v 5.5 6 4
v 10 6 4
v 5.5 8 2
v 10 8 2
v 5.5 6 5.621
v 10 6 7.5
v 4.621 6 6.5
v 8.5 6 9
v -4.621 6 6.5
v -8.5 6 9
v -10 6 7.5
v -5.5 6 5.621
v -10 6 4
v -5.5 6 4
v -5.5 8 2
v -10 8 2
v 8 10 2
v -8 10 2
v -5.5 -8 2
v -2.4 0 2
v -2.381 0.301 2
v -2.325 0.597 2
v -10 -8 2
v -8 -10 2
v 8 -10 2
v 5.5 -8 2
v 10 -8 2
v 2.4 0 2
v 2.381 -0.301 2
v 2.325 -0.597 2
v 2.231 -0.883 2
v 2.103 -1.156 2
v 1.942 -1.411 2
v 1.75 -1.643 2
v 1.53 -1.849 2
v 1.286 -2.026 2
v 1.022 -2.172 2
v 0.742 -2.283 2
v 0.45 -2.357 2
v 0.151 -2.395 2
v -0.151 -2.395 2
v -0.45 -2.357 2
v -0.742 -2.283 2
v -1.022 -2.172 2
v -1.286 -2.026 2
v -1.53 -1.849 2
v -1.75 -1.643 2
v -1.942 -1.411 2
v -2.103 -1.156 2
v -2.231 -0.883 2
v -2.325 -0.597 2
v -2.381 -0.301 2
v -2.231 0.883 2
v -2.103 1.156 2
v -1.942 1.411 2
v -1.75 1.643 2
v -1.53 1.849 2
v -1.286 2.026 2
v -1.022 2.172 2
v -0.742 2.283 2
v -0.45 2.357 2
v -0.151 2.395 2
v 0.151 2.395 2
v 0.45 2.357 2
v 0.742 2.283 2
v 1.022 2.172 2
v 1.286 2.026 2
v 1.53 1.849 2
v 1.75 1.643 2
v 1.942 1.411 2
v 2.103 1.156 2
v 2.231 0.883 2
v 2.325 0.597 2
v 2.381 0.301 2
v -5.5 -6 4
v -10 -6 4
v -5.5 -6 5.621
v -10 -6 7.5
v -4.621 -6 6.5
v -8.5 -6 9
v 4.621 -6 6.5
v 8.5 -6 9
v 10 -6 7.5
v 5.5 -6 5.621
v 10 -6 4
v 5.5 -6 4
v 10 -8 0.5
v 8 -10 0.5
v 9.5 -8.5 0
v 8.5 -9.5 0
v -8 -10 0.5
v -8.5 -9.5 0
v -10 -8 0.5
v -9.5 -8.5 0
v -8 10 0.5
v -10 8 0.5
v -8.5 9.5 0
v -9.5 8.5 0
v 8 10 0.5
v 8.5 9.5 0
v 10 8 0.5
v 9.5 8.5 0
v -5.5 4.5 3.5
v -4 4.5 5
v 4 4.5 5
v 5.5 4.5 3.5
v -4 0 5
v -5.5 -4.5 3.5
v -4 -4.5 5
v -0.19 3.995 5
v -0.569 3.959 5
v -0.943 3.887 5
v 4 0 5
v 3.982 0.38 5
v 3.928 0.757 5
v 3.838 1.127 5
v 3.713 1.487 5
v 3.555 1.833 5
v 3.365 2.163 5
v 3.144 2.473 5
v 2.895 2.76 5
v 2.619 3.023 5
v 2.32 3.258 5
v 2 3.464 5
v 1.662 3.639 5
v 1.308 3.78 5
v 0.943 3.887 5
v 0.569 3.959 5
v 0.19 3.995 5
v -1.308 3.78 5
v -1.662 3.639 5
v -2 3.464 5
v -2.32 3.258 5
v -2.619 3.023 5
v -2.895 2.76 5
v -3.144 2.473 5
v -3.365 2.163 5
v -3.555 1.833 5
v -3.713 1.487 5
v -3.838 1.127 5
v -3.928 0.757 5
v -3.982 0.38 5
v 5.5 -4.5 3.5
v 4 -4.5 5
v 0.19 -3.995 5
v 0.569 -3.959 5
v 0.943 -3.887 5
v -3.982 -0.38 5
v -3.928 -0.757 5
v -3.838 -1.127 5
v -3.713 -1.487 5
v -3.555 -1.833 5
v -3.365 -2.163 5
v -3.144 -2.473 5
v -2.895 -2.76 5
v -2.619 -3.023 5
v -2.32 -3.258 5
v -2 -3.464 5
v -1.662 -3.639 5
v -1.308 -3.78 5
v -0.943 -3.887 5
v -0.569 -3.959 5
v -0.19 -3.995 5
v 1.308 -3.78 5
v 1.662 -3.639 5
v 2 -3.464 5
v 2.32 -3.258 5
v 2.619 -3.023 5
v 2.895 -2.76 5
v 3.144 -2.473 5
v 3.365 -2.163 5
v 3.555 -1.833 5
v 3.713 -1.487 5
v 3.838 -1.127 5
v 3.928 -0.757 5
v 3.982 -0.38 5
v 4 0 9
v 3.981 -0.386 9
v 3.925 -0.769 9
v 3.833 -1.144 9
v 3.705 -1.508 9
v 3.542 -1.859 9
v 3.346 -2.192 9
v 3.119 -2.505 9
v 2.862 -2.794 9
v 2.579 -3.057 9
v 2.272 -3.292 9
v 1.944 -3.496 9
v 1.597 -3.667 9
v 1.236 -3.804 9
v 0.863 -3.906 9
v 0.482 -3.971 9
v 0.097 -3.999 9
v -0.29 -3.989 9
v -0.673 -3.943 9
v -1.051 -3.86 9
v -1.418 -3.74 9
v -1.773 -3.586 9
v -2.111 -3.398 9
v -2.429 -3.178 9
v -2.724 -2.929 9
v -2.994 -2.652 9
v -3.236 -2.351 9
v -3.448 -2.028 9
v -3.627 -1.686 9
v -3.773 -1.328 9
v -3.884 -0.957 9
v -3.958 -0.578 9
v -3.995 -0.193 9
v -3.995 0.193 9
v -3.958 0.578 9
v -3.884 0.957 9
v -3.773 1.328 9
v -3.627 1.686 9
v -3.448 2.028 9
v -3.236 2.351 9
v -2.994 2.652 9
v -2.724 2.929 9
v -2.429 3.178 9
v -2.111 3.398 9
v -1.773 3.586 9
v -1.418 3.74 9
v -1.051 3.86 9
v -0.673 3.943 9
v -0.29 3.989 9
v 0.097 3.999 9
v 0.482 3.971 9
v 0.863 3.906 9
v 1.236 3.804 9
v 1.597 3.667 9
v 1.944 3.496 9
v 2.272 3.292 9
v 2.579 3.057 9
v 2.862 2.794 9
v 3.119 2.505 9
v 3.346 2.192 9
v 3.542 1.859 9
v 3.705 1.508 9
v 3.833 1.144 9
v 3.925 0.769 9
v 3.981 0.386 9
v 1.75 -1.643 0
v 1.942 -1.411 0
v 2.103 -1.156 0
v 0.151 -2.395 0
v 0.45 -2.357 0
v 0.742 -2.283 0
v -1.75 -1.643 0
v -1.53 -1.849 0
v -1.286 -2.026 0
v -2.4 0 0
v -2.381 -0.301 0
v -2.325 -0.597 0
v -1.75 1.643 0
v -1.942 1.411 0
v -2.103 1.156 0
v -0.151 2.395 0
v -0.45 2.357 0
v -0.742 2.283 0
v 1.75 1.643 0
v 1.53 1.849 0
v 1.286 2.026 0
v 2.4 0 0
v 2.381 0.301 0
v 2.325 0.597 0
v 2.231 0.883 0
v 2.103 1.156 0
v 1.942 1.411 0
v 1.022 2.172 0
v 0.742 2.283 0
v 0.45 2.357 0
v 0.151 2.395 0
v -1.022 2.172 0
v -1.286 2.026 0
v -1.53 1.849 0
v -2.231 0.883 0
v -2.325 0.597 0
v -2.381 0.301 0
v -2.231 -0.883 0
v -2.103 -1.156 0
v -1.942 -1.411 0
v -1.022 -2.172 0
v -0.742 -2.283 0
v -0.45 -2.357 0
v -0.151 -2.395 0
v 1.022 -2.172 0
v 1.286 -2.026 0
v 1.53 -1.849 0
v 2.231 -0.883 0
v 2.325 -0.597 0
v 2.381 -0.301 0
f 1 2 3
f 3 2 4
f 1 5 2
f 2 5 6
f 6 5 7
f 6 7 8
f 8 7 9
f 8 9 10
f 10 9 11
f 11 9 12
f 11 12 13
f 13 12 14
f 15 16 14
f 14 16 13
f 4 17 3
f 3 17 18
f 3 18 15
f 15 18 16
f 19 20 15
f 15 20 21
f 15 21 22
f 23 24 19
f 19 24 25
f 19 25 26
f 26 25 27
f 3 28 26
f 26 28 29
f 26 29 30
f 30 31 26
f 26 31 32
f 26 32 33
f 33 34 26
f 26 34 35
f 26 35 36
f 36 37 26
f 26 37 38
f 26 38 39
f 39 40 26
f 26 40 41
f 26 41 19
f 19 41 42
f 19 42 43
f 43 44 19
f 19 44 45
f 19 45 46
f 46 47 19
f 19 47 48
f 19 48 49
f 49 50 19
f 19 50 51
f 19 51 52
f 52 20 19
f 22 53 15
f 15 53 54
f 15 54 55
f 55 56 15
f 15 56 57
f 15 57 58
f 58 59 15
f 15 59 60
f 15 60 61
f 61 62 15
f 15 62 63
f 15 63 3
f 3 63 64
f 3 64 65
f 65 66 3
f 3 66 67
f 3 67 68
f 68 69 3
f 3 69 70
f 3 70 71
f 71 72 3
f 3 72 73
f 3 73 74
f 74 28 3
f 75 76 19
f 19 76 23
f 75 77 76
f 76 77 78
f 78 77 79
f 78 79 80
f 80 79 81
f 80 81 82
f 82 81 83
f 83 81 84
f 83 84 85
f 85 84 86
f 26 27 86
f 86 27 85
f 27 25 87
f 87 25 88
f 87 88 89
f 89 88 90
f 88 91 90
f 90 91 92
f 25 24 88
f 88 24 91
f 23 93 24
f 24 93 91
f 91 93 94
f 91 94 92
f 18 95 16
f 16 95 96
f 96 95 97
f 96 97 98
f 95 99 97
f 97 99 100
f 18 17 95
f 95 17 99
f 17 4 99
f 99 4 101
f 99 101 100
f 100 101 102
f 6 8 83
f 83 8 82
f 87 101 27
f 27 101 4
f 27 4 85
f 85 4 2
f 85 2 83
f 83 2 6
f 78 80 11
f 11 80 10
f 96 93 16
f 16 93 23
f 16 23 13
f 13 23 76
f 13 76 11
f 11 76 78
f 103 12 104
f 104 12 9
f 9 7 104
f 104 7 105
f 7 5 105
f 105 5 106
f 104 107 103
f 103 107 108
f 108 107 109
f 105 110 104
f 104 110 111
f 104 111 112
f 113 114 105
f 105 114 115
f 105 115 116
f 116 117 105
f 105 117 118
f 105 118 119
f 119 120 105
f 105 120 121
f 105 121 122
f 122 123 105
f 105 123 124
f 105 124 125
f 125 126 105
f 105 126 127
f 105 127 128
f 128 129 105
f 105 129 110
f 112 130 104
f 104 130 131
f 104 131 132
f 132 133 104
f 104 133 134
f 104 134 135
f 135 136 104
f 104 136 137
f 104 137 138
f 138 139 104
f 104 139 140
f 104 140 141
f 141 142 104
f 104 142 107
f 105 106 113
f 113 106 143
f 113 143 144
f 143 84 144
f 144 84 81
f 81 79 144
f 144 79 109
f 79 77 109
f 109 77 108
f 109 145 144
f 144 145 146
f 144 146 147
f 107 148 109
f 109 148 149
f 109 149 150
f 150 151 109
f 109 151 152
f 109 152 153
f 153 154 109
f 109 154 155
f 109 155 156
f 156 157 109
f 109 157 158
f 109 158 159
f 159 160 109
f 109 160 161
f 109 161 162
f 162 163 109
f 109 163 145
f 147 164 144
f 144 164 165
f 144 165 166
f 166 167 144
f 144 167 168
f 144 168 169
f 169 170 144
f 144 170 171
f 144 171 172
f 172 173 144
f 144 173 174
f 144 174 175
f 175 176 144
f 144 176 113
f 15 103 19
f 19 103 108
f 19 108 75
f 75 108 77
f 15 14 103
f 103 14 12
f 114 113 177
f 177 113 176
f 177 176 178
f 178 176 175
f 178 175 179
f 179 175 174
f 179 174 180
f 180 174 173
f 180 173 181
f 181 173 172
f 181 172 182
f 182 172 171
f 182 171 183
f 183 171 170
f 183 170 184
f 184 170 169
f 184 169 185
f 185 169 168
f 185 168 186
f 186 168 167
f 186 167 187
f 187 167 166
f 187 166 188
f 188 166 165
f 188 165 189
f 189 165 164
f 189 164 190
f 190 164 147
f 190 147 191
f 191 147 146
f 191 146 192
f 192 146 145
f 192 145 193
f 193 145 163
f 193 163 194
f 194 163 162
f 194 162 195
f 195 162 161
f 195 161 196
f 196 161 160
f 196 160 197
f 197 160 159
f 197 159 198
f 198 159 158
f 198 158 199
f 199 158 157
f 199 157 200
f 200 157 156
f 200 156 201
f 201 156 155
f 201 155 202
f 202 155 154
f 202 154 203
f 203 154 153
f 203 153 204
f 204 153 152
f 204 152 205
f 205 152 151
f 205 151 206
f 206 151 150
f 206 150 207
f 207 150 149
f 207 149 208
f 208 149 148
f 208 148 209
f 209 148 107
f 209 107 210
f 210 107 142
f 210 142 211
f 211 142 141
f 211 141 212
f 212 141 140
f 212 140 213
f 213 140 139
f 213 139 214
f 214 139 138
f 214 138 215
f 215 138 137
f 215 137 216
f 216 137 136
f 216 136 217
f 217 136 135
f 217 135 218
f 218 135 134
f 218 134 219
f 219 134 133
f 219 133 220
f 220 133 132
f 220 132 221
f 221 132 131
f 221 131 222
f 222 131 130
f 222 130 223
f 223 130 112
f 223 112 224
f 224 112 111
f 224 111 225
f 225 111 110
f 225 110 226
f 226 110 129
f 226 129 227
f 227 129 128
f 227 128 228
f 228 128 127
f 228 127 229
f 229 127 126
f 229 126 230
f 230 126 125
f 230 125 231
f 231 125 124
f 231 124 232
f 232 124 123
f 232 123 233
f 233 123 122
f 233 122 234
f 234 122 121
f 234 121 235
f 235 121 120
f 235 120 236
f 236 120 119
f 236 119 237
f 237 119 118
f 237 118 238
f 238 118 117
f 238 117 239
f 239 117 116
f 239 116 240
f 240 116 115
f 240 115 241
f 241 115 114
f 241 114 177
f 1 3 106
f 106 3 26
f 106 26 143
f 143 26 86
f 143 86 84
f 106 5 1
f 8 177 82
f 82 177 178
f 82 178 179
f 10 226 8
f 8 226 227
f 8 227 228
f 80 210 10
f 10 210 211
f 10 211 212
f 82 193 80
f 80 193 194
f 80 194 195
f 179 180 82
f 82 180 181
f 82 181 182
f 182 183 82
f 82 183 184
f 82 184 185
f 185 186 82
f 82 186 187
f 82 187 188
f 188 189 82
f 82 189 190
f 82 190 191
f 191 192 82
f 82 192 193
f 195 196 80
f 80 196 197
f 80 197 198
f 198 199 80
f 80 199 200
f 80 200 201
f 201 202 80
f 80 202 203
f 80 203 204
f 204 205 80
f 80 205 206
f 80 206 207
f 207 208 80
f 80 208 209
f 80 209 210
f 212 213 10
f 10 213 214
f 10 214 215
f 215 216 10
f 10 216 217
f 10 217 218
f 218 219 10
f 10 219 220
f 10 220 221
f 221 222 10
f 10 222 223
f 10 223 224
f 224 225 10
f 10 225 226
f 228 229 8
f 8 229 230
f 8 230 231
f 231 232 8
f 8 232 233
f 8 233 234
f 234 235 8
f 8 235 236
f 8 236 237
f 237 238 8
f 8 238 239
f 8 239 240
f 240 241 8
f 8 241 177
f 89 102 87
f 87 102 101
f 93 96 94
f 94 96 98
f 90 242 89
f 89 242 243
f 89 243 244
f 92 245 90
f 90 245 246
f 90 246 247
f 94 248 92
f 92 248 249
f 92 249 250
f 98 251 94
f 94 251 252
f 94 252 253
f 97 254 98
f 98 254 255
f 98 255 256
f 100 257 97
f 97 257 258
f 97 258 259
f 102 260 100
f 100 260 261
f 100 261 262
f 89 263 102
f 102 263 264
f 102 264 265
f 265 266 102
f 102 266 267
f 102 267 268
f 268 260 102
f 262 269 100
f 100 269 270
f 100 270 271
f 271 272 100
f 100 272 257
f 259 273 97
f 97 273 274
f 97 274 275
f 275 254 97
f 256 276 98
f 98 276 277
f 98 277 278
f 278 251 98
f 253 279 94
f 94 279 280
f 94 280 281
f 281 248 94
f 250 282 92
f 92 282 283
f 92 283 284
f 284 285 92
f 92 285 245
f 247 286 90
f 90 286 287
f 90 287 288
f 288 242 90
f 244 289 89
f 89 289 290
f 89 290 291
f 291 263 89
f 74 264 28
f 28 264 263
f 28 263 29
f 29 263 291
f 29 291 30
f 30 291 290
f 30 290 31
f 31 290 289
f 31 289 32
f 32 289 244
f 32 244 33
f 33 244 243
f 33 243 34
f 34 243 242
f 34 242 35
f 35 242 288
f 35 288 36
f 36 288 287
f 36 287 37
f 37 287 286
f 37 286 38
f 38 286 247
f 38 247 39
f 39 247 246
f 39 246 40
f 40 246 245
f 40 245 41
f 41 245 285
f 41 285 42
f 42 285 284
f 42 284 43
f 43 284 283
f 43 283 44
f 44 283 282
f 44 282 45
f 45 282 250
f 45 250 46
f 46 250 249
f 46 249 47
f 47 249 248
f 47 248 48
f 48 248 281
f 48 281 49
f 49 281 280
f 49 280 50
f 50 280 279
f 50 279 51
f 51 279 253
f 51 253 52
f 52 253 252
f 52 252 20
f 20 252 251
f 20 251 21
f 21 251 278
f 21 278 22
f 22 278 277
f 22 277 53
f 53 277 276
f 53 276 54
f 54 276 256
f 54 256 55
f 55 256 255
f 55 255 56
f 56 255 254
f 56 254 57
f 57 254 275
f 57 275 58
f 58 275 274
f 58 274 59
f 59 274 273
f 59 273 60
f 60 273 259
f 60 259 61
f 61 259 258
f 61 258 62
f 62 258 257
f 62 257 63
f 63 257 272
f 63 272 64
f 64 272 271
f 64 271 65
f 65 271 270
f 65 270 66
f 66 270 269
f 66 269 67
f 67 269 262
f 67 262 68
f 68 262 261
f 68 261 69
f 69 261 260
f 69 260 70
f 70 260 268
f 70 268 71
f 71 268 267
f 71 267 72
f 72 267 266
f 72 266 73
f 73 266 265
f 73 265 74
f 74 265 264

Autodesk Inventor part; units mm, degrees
ref_plane "YZ Plane" through (0, 0, 0) normal (1, 0, 0) x (0, 1, 0)
ref_plane "XZ Plane" through (0, 0, 0) normal (0, 1, 0) x (-1, 0, 0)
ref_plane "XY Plane" through (0, 0, 0) normal (0, 0, 1) x (1, 0, 0)
sketch "Sketch1" plane through (0, 0, 0) normal (0, 0, 1) x (1, 0, 0)
  line L0 (-10, -10) -> (10, -10)
  line L1 (10, -10) -> (10, 10)
  line L2 (10, 10) -> (-10, 10)
  line L3 (-10, 10) -> (-10, -10)
  line L4 (-10, -10) -> (10, 10) construction
  line L5 (10, -10) -> (-10, 10) construction
  circle A0 centre (0, 0) radius 2.4
  dimension "d0" = 20
  dimension "d1" = 20
  dimension "d2" = 4.8
extrude "Extrusion1" add sketch "Sketch1" along normal blind 2
chamfer "Chamfer1" distance 0.5 angle 45 4 edges at (10, 0, 0) (0, 10, 0) (-10, 0, 0) (0, -10, 0)
sketch "Sketch2" plane through (0, 0, 2) normal (0, 0, 1) x (1, 0, 0)
  line L0 (10, 10) -> (10, -10) projected
  line L1 (-10, -6) -> (10, -6)
  line L2 (10, -6) -> (10, 6)
  line L3 (10, 6) -> (-10, 6)
  line L4 (-10, 6) -> (-10, -6)
  line L5 (-10, -6) -> (10, 6) construction
  line L6 (10, -6) -> (-10, 6) construction
  point P0 (0, 0)
  point P1 (10, -6)
  dimension "d8" = 12
extrude "Extrusion2" add sketch "Sketch2" along normal blind 7
sketch "Sketch5" plane through (-10, -6, 2) normal (0, -1, 0) x (1, 0, 0)
  line L0 (20, 0) -> (0, 0) projected
  line L1 (4.5, 0) -> (15.5, 0)
  line L2 (15.5, 0) -> (15.5, 3)
  line L3 (15.5, 3) -> (4.5, 3)
  line L4 (4.5, 3) -> (4.5, 0)
  line L5 (0, 0) -> (0, 7) projected
  line L6 (20, 0) -> (20, 7) projected
  point P0 (10, -2)
  dimension "d18" = 3
  dimension "d19" = 4.5
  dimension "d20" = 4.5
extrude "Extrusion4" cut sketch "Sketch5" against normal through all
sketch "Sketch6" plane through (0, 0, 9) normal (0, 0, 1) x (1, 0, 0)
  circle A0 centre (0, 0) radius 2.4 construction
  circle A1 centre (0, 0) radius 4
  dimension "d23" = 8
extrude "Extrusion5" cut sketch "Sketch6" against normal up to surface (7 mm away)
chamfer "Chamfer4" distance 1.5 angle 45 2 edges at (-5.5, 0, 5) (5.5, 0, 5)
chamfer "Chamfer5" distance 1.5 angle 45 6 edges at (0, -6, 5) (0, 6, 5) (-4.75, -6, 4.25) (4.75, -6, 4.2501) (4.75, 6, 4.25) (-4.75, 6, 4.2501)
chamfer "Chamfer6" distance 1.5 angle 45 2 edges at (-10, 0, 9) (10, 0, 9)
chamfer "Chamfer7" distance 2 angle 45 8 edges at (10, 10, 1.25) (-10, 10, 1.25) (-10, -10, 1.25) (10, -10, 1.25) (7.75, -6, 2) (-7.75, -6, 2) (-7.75, 6, 2) (7.75, 6, 2)
equation "\"d20\" = d19"
properties part number "_3DPrint"
